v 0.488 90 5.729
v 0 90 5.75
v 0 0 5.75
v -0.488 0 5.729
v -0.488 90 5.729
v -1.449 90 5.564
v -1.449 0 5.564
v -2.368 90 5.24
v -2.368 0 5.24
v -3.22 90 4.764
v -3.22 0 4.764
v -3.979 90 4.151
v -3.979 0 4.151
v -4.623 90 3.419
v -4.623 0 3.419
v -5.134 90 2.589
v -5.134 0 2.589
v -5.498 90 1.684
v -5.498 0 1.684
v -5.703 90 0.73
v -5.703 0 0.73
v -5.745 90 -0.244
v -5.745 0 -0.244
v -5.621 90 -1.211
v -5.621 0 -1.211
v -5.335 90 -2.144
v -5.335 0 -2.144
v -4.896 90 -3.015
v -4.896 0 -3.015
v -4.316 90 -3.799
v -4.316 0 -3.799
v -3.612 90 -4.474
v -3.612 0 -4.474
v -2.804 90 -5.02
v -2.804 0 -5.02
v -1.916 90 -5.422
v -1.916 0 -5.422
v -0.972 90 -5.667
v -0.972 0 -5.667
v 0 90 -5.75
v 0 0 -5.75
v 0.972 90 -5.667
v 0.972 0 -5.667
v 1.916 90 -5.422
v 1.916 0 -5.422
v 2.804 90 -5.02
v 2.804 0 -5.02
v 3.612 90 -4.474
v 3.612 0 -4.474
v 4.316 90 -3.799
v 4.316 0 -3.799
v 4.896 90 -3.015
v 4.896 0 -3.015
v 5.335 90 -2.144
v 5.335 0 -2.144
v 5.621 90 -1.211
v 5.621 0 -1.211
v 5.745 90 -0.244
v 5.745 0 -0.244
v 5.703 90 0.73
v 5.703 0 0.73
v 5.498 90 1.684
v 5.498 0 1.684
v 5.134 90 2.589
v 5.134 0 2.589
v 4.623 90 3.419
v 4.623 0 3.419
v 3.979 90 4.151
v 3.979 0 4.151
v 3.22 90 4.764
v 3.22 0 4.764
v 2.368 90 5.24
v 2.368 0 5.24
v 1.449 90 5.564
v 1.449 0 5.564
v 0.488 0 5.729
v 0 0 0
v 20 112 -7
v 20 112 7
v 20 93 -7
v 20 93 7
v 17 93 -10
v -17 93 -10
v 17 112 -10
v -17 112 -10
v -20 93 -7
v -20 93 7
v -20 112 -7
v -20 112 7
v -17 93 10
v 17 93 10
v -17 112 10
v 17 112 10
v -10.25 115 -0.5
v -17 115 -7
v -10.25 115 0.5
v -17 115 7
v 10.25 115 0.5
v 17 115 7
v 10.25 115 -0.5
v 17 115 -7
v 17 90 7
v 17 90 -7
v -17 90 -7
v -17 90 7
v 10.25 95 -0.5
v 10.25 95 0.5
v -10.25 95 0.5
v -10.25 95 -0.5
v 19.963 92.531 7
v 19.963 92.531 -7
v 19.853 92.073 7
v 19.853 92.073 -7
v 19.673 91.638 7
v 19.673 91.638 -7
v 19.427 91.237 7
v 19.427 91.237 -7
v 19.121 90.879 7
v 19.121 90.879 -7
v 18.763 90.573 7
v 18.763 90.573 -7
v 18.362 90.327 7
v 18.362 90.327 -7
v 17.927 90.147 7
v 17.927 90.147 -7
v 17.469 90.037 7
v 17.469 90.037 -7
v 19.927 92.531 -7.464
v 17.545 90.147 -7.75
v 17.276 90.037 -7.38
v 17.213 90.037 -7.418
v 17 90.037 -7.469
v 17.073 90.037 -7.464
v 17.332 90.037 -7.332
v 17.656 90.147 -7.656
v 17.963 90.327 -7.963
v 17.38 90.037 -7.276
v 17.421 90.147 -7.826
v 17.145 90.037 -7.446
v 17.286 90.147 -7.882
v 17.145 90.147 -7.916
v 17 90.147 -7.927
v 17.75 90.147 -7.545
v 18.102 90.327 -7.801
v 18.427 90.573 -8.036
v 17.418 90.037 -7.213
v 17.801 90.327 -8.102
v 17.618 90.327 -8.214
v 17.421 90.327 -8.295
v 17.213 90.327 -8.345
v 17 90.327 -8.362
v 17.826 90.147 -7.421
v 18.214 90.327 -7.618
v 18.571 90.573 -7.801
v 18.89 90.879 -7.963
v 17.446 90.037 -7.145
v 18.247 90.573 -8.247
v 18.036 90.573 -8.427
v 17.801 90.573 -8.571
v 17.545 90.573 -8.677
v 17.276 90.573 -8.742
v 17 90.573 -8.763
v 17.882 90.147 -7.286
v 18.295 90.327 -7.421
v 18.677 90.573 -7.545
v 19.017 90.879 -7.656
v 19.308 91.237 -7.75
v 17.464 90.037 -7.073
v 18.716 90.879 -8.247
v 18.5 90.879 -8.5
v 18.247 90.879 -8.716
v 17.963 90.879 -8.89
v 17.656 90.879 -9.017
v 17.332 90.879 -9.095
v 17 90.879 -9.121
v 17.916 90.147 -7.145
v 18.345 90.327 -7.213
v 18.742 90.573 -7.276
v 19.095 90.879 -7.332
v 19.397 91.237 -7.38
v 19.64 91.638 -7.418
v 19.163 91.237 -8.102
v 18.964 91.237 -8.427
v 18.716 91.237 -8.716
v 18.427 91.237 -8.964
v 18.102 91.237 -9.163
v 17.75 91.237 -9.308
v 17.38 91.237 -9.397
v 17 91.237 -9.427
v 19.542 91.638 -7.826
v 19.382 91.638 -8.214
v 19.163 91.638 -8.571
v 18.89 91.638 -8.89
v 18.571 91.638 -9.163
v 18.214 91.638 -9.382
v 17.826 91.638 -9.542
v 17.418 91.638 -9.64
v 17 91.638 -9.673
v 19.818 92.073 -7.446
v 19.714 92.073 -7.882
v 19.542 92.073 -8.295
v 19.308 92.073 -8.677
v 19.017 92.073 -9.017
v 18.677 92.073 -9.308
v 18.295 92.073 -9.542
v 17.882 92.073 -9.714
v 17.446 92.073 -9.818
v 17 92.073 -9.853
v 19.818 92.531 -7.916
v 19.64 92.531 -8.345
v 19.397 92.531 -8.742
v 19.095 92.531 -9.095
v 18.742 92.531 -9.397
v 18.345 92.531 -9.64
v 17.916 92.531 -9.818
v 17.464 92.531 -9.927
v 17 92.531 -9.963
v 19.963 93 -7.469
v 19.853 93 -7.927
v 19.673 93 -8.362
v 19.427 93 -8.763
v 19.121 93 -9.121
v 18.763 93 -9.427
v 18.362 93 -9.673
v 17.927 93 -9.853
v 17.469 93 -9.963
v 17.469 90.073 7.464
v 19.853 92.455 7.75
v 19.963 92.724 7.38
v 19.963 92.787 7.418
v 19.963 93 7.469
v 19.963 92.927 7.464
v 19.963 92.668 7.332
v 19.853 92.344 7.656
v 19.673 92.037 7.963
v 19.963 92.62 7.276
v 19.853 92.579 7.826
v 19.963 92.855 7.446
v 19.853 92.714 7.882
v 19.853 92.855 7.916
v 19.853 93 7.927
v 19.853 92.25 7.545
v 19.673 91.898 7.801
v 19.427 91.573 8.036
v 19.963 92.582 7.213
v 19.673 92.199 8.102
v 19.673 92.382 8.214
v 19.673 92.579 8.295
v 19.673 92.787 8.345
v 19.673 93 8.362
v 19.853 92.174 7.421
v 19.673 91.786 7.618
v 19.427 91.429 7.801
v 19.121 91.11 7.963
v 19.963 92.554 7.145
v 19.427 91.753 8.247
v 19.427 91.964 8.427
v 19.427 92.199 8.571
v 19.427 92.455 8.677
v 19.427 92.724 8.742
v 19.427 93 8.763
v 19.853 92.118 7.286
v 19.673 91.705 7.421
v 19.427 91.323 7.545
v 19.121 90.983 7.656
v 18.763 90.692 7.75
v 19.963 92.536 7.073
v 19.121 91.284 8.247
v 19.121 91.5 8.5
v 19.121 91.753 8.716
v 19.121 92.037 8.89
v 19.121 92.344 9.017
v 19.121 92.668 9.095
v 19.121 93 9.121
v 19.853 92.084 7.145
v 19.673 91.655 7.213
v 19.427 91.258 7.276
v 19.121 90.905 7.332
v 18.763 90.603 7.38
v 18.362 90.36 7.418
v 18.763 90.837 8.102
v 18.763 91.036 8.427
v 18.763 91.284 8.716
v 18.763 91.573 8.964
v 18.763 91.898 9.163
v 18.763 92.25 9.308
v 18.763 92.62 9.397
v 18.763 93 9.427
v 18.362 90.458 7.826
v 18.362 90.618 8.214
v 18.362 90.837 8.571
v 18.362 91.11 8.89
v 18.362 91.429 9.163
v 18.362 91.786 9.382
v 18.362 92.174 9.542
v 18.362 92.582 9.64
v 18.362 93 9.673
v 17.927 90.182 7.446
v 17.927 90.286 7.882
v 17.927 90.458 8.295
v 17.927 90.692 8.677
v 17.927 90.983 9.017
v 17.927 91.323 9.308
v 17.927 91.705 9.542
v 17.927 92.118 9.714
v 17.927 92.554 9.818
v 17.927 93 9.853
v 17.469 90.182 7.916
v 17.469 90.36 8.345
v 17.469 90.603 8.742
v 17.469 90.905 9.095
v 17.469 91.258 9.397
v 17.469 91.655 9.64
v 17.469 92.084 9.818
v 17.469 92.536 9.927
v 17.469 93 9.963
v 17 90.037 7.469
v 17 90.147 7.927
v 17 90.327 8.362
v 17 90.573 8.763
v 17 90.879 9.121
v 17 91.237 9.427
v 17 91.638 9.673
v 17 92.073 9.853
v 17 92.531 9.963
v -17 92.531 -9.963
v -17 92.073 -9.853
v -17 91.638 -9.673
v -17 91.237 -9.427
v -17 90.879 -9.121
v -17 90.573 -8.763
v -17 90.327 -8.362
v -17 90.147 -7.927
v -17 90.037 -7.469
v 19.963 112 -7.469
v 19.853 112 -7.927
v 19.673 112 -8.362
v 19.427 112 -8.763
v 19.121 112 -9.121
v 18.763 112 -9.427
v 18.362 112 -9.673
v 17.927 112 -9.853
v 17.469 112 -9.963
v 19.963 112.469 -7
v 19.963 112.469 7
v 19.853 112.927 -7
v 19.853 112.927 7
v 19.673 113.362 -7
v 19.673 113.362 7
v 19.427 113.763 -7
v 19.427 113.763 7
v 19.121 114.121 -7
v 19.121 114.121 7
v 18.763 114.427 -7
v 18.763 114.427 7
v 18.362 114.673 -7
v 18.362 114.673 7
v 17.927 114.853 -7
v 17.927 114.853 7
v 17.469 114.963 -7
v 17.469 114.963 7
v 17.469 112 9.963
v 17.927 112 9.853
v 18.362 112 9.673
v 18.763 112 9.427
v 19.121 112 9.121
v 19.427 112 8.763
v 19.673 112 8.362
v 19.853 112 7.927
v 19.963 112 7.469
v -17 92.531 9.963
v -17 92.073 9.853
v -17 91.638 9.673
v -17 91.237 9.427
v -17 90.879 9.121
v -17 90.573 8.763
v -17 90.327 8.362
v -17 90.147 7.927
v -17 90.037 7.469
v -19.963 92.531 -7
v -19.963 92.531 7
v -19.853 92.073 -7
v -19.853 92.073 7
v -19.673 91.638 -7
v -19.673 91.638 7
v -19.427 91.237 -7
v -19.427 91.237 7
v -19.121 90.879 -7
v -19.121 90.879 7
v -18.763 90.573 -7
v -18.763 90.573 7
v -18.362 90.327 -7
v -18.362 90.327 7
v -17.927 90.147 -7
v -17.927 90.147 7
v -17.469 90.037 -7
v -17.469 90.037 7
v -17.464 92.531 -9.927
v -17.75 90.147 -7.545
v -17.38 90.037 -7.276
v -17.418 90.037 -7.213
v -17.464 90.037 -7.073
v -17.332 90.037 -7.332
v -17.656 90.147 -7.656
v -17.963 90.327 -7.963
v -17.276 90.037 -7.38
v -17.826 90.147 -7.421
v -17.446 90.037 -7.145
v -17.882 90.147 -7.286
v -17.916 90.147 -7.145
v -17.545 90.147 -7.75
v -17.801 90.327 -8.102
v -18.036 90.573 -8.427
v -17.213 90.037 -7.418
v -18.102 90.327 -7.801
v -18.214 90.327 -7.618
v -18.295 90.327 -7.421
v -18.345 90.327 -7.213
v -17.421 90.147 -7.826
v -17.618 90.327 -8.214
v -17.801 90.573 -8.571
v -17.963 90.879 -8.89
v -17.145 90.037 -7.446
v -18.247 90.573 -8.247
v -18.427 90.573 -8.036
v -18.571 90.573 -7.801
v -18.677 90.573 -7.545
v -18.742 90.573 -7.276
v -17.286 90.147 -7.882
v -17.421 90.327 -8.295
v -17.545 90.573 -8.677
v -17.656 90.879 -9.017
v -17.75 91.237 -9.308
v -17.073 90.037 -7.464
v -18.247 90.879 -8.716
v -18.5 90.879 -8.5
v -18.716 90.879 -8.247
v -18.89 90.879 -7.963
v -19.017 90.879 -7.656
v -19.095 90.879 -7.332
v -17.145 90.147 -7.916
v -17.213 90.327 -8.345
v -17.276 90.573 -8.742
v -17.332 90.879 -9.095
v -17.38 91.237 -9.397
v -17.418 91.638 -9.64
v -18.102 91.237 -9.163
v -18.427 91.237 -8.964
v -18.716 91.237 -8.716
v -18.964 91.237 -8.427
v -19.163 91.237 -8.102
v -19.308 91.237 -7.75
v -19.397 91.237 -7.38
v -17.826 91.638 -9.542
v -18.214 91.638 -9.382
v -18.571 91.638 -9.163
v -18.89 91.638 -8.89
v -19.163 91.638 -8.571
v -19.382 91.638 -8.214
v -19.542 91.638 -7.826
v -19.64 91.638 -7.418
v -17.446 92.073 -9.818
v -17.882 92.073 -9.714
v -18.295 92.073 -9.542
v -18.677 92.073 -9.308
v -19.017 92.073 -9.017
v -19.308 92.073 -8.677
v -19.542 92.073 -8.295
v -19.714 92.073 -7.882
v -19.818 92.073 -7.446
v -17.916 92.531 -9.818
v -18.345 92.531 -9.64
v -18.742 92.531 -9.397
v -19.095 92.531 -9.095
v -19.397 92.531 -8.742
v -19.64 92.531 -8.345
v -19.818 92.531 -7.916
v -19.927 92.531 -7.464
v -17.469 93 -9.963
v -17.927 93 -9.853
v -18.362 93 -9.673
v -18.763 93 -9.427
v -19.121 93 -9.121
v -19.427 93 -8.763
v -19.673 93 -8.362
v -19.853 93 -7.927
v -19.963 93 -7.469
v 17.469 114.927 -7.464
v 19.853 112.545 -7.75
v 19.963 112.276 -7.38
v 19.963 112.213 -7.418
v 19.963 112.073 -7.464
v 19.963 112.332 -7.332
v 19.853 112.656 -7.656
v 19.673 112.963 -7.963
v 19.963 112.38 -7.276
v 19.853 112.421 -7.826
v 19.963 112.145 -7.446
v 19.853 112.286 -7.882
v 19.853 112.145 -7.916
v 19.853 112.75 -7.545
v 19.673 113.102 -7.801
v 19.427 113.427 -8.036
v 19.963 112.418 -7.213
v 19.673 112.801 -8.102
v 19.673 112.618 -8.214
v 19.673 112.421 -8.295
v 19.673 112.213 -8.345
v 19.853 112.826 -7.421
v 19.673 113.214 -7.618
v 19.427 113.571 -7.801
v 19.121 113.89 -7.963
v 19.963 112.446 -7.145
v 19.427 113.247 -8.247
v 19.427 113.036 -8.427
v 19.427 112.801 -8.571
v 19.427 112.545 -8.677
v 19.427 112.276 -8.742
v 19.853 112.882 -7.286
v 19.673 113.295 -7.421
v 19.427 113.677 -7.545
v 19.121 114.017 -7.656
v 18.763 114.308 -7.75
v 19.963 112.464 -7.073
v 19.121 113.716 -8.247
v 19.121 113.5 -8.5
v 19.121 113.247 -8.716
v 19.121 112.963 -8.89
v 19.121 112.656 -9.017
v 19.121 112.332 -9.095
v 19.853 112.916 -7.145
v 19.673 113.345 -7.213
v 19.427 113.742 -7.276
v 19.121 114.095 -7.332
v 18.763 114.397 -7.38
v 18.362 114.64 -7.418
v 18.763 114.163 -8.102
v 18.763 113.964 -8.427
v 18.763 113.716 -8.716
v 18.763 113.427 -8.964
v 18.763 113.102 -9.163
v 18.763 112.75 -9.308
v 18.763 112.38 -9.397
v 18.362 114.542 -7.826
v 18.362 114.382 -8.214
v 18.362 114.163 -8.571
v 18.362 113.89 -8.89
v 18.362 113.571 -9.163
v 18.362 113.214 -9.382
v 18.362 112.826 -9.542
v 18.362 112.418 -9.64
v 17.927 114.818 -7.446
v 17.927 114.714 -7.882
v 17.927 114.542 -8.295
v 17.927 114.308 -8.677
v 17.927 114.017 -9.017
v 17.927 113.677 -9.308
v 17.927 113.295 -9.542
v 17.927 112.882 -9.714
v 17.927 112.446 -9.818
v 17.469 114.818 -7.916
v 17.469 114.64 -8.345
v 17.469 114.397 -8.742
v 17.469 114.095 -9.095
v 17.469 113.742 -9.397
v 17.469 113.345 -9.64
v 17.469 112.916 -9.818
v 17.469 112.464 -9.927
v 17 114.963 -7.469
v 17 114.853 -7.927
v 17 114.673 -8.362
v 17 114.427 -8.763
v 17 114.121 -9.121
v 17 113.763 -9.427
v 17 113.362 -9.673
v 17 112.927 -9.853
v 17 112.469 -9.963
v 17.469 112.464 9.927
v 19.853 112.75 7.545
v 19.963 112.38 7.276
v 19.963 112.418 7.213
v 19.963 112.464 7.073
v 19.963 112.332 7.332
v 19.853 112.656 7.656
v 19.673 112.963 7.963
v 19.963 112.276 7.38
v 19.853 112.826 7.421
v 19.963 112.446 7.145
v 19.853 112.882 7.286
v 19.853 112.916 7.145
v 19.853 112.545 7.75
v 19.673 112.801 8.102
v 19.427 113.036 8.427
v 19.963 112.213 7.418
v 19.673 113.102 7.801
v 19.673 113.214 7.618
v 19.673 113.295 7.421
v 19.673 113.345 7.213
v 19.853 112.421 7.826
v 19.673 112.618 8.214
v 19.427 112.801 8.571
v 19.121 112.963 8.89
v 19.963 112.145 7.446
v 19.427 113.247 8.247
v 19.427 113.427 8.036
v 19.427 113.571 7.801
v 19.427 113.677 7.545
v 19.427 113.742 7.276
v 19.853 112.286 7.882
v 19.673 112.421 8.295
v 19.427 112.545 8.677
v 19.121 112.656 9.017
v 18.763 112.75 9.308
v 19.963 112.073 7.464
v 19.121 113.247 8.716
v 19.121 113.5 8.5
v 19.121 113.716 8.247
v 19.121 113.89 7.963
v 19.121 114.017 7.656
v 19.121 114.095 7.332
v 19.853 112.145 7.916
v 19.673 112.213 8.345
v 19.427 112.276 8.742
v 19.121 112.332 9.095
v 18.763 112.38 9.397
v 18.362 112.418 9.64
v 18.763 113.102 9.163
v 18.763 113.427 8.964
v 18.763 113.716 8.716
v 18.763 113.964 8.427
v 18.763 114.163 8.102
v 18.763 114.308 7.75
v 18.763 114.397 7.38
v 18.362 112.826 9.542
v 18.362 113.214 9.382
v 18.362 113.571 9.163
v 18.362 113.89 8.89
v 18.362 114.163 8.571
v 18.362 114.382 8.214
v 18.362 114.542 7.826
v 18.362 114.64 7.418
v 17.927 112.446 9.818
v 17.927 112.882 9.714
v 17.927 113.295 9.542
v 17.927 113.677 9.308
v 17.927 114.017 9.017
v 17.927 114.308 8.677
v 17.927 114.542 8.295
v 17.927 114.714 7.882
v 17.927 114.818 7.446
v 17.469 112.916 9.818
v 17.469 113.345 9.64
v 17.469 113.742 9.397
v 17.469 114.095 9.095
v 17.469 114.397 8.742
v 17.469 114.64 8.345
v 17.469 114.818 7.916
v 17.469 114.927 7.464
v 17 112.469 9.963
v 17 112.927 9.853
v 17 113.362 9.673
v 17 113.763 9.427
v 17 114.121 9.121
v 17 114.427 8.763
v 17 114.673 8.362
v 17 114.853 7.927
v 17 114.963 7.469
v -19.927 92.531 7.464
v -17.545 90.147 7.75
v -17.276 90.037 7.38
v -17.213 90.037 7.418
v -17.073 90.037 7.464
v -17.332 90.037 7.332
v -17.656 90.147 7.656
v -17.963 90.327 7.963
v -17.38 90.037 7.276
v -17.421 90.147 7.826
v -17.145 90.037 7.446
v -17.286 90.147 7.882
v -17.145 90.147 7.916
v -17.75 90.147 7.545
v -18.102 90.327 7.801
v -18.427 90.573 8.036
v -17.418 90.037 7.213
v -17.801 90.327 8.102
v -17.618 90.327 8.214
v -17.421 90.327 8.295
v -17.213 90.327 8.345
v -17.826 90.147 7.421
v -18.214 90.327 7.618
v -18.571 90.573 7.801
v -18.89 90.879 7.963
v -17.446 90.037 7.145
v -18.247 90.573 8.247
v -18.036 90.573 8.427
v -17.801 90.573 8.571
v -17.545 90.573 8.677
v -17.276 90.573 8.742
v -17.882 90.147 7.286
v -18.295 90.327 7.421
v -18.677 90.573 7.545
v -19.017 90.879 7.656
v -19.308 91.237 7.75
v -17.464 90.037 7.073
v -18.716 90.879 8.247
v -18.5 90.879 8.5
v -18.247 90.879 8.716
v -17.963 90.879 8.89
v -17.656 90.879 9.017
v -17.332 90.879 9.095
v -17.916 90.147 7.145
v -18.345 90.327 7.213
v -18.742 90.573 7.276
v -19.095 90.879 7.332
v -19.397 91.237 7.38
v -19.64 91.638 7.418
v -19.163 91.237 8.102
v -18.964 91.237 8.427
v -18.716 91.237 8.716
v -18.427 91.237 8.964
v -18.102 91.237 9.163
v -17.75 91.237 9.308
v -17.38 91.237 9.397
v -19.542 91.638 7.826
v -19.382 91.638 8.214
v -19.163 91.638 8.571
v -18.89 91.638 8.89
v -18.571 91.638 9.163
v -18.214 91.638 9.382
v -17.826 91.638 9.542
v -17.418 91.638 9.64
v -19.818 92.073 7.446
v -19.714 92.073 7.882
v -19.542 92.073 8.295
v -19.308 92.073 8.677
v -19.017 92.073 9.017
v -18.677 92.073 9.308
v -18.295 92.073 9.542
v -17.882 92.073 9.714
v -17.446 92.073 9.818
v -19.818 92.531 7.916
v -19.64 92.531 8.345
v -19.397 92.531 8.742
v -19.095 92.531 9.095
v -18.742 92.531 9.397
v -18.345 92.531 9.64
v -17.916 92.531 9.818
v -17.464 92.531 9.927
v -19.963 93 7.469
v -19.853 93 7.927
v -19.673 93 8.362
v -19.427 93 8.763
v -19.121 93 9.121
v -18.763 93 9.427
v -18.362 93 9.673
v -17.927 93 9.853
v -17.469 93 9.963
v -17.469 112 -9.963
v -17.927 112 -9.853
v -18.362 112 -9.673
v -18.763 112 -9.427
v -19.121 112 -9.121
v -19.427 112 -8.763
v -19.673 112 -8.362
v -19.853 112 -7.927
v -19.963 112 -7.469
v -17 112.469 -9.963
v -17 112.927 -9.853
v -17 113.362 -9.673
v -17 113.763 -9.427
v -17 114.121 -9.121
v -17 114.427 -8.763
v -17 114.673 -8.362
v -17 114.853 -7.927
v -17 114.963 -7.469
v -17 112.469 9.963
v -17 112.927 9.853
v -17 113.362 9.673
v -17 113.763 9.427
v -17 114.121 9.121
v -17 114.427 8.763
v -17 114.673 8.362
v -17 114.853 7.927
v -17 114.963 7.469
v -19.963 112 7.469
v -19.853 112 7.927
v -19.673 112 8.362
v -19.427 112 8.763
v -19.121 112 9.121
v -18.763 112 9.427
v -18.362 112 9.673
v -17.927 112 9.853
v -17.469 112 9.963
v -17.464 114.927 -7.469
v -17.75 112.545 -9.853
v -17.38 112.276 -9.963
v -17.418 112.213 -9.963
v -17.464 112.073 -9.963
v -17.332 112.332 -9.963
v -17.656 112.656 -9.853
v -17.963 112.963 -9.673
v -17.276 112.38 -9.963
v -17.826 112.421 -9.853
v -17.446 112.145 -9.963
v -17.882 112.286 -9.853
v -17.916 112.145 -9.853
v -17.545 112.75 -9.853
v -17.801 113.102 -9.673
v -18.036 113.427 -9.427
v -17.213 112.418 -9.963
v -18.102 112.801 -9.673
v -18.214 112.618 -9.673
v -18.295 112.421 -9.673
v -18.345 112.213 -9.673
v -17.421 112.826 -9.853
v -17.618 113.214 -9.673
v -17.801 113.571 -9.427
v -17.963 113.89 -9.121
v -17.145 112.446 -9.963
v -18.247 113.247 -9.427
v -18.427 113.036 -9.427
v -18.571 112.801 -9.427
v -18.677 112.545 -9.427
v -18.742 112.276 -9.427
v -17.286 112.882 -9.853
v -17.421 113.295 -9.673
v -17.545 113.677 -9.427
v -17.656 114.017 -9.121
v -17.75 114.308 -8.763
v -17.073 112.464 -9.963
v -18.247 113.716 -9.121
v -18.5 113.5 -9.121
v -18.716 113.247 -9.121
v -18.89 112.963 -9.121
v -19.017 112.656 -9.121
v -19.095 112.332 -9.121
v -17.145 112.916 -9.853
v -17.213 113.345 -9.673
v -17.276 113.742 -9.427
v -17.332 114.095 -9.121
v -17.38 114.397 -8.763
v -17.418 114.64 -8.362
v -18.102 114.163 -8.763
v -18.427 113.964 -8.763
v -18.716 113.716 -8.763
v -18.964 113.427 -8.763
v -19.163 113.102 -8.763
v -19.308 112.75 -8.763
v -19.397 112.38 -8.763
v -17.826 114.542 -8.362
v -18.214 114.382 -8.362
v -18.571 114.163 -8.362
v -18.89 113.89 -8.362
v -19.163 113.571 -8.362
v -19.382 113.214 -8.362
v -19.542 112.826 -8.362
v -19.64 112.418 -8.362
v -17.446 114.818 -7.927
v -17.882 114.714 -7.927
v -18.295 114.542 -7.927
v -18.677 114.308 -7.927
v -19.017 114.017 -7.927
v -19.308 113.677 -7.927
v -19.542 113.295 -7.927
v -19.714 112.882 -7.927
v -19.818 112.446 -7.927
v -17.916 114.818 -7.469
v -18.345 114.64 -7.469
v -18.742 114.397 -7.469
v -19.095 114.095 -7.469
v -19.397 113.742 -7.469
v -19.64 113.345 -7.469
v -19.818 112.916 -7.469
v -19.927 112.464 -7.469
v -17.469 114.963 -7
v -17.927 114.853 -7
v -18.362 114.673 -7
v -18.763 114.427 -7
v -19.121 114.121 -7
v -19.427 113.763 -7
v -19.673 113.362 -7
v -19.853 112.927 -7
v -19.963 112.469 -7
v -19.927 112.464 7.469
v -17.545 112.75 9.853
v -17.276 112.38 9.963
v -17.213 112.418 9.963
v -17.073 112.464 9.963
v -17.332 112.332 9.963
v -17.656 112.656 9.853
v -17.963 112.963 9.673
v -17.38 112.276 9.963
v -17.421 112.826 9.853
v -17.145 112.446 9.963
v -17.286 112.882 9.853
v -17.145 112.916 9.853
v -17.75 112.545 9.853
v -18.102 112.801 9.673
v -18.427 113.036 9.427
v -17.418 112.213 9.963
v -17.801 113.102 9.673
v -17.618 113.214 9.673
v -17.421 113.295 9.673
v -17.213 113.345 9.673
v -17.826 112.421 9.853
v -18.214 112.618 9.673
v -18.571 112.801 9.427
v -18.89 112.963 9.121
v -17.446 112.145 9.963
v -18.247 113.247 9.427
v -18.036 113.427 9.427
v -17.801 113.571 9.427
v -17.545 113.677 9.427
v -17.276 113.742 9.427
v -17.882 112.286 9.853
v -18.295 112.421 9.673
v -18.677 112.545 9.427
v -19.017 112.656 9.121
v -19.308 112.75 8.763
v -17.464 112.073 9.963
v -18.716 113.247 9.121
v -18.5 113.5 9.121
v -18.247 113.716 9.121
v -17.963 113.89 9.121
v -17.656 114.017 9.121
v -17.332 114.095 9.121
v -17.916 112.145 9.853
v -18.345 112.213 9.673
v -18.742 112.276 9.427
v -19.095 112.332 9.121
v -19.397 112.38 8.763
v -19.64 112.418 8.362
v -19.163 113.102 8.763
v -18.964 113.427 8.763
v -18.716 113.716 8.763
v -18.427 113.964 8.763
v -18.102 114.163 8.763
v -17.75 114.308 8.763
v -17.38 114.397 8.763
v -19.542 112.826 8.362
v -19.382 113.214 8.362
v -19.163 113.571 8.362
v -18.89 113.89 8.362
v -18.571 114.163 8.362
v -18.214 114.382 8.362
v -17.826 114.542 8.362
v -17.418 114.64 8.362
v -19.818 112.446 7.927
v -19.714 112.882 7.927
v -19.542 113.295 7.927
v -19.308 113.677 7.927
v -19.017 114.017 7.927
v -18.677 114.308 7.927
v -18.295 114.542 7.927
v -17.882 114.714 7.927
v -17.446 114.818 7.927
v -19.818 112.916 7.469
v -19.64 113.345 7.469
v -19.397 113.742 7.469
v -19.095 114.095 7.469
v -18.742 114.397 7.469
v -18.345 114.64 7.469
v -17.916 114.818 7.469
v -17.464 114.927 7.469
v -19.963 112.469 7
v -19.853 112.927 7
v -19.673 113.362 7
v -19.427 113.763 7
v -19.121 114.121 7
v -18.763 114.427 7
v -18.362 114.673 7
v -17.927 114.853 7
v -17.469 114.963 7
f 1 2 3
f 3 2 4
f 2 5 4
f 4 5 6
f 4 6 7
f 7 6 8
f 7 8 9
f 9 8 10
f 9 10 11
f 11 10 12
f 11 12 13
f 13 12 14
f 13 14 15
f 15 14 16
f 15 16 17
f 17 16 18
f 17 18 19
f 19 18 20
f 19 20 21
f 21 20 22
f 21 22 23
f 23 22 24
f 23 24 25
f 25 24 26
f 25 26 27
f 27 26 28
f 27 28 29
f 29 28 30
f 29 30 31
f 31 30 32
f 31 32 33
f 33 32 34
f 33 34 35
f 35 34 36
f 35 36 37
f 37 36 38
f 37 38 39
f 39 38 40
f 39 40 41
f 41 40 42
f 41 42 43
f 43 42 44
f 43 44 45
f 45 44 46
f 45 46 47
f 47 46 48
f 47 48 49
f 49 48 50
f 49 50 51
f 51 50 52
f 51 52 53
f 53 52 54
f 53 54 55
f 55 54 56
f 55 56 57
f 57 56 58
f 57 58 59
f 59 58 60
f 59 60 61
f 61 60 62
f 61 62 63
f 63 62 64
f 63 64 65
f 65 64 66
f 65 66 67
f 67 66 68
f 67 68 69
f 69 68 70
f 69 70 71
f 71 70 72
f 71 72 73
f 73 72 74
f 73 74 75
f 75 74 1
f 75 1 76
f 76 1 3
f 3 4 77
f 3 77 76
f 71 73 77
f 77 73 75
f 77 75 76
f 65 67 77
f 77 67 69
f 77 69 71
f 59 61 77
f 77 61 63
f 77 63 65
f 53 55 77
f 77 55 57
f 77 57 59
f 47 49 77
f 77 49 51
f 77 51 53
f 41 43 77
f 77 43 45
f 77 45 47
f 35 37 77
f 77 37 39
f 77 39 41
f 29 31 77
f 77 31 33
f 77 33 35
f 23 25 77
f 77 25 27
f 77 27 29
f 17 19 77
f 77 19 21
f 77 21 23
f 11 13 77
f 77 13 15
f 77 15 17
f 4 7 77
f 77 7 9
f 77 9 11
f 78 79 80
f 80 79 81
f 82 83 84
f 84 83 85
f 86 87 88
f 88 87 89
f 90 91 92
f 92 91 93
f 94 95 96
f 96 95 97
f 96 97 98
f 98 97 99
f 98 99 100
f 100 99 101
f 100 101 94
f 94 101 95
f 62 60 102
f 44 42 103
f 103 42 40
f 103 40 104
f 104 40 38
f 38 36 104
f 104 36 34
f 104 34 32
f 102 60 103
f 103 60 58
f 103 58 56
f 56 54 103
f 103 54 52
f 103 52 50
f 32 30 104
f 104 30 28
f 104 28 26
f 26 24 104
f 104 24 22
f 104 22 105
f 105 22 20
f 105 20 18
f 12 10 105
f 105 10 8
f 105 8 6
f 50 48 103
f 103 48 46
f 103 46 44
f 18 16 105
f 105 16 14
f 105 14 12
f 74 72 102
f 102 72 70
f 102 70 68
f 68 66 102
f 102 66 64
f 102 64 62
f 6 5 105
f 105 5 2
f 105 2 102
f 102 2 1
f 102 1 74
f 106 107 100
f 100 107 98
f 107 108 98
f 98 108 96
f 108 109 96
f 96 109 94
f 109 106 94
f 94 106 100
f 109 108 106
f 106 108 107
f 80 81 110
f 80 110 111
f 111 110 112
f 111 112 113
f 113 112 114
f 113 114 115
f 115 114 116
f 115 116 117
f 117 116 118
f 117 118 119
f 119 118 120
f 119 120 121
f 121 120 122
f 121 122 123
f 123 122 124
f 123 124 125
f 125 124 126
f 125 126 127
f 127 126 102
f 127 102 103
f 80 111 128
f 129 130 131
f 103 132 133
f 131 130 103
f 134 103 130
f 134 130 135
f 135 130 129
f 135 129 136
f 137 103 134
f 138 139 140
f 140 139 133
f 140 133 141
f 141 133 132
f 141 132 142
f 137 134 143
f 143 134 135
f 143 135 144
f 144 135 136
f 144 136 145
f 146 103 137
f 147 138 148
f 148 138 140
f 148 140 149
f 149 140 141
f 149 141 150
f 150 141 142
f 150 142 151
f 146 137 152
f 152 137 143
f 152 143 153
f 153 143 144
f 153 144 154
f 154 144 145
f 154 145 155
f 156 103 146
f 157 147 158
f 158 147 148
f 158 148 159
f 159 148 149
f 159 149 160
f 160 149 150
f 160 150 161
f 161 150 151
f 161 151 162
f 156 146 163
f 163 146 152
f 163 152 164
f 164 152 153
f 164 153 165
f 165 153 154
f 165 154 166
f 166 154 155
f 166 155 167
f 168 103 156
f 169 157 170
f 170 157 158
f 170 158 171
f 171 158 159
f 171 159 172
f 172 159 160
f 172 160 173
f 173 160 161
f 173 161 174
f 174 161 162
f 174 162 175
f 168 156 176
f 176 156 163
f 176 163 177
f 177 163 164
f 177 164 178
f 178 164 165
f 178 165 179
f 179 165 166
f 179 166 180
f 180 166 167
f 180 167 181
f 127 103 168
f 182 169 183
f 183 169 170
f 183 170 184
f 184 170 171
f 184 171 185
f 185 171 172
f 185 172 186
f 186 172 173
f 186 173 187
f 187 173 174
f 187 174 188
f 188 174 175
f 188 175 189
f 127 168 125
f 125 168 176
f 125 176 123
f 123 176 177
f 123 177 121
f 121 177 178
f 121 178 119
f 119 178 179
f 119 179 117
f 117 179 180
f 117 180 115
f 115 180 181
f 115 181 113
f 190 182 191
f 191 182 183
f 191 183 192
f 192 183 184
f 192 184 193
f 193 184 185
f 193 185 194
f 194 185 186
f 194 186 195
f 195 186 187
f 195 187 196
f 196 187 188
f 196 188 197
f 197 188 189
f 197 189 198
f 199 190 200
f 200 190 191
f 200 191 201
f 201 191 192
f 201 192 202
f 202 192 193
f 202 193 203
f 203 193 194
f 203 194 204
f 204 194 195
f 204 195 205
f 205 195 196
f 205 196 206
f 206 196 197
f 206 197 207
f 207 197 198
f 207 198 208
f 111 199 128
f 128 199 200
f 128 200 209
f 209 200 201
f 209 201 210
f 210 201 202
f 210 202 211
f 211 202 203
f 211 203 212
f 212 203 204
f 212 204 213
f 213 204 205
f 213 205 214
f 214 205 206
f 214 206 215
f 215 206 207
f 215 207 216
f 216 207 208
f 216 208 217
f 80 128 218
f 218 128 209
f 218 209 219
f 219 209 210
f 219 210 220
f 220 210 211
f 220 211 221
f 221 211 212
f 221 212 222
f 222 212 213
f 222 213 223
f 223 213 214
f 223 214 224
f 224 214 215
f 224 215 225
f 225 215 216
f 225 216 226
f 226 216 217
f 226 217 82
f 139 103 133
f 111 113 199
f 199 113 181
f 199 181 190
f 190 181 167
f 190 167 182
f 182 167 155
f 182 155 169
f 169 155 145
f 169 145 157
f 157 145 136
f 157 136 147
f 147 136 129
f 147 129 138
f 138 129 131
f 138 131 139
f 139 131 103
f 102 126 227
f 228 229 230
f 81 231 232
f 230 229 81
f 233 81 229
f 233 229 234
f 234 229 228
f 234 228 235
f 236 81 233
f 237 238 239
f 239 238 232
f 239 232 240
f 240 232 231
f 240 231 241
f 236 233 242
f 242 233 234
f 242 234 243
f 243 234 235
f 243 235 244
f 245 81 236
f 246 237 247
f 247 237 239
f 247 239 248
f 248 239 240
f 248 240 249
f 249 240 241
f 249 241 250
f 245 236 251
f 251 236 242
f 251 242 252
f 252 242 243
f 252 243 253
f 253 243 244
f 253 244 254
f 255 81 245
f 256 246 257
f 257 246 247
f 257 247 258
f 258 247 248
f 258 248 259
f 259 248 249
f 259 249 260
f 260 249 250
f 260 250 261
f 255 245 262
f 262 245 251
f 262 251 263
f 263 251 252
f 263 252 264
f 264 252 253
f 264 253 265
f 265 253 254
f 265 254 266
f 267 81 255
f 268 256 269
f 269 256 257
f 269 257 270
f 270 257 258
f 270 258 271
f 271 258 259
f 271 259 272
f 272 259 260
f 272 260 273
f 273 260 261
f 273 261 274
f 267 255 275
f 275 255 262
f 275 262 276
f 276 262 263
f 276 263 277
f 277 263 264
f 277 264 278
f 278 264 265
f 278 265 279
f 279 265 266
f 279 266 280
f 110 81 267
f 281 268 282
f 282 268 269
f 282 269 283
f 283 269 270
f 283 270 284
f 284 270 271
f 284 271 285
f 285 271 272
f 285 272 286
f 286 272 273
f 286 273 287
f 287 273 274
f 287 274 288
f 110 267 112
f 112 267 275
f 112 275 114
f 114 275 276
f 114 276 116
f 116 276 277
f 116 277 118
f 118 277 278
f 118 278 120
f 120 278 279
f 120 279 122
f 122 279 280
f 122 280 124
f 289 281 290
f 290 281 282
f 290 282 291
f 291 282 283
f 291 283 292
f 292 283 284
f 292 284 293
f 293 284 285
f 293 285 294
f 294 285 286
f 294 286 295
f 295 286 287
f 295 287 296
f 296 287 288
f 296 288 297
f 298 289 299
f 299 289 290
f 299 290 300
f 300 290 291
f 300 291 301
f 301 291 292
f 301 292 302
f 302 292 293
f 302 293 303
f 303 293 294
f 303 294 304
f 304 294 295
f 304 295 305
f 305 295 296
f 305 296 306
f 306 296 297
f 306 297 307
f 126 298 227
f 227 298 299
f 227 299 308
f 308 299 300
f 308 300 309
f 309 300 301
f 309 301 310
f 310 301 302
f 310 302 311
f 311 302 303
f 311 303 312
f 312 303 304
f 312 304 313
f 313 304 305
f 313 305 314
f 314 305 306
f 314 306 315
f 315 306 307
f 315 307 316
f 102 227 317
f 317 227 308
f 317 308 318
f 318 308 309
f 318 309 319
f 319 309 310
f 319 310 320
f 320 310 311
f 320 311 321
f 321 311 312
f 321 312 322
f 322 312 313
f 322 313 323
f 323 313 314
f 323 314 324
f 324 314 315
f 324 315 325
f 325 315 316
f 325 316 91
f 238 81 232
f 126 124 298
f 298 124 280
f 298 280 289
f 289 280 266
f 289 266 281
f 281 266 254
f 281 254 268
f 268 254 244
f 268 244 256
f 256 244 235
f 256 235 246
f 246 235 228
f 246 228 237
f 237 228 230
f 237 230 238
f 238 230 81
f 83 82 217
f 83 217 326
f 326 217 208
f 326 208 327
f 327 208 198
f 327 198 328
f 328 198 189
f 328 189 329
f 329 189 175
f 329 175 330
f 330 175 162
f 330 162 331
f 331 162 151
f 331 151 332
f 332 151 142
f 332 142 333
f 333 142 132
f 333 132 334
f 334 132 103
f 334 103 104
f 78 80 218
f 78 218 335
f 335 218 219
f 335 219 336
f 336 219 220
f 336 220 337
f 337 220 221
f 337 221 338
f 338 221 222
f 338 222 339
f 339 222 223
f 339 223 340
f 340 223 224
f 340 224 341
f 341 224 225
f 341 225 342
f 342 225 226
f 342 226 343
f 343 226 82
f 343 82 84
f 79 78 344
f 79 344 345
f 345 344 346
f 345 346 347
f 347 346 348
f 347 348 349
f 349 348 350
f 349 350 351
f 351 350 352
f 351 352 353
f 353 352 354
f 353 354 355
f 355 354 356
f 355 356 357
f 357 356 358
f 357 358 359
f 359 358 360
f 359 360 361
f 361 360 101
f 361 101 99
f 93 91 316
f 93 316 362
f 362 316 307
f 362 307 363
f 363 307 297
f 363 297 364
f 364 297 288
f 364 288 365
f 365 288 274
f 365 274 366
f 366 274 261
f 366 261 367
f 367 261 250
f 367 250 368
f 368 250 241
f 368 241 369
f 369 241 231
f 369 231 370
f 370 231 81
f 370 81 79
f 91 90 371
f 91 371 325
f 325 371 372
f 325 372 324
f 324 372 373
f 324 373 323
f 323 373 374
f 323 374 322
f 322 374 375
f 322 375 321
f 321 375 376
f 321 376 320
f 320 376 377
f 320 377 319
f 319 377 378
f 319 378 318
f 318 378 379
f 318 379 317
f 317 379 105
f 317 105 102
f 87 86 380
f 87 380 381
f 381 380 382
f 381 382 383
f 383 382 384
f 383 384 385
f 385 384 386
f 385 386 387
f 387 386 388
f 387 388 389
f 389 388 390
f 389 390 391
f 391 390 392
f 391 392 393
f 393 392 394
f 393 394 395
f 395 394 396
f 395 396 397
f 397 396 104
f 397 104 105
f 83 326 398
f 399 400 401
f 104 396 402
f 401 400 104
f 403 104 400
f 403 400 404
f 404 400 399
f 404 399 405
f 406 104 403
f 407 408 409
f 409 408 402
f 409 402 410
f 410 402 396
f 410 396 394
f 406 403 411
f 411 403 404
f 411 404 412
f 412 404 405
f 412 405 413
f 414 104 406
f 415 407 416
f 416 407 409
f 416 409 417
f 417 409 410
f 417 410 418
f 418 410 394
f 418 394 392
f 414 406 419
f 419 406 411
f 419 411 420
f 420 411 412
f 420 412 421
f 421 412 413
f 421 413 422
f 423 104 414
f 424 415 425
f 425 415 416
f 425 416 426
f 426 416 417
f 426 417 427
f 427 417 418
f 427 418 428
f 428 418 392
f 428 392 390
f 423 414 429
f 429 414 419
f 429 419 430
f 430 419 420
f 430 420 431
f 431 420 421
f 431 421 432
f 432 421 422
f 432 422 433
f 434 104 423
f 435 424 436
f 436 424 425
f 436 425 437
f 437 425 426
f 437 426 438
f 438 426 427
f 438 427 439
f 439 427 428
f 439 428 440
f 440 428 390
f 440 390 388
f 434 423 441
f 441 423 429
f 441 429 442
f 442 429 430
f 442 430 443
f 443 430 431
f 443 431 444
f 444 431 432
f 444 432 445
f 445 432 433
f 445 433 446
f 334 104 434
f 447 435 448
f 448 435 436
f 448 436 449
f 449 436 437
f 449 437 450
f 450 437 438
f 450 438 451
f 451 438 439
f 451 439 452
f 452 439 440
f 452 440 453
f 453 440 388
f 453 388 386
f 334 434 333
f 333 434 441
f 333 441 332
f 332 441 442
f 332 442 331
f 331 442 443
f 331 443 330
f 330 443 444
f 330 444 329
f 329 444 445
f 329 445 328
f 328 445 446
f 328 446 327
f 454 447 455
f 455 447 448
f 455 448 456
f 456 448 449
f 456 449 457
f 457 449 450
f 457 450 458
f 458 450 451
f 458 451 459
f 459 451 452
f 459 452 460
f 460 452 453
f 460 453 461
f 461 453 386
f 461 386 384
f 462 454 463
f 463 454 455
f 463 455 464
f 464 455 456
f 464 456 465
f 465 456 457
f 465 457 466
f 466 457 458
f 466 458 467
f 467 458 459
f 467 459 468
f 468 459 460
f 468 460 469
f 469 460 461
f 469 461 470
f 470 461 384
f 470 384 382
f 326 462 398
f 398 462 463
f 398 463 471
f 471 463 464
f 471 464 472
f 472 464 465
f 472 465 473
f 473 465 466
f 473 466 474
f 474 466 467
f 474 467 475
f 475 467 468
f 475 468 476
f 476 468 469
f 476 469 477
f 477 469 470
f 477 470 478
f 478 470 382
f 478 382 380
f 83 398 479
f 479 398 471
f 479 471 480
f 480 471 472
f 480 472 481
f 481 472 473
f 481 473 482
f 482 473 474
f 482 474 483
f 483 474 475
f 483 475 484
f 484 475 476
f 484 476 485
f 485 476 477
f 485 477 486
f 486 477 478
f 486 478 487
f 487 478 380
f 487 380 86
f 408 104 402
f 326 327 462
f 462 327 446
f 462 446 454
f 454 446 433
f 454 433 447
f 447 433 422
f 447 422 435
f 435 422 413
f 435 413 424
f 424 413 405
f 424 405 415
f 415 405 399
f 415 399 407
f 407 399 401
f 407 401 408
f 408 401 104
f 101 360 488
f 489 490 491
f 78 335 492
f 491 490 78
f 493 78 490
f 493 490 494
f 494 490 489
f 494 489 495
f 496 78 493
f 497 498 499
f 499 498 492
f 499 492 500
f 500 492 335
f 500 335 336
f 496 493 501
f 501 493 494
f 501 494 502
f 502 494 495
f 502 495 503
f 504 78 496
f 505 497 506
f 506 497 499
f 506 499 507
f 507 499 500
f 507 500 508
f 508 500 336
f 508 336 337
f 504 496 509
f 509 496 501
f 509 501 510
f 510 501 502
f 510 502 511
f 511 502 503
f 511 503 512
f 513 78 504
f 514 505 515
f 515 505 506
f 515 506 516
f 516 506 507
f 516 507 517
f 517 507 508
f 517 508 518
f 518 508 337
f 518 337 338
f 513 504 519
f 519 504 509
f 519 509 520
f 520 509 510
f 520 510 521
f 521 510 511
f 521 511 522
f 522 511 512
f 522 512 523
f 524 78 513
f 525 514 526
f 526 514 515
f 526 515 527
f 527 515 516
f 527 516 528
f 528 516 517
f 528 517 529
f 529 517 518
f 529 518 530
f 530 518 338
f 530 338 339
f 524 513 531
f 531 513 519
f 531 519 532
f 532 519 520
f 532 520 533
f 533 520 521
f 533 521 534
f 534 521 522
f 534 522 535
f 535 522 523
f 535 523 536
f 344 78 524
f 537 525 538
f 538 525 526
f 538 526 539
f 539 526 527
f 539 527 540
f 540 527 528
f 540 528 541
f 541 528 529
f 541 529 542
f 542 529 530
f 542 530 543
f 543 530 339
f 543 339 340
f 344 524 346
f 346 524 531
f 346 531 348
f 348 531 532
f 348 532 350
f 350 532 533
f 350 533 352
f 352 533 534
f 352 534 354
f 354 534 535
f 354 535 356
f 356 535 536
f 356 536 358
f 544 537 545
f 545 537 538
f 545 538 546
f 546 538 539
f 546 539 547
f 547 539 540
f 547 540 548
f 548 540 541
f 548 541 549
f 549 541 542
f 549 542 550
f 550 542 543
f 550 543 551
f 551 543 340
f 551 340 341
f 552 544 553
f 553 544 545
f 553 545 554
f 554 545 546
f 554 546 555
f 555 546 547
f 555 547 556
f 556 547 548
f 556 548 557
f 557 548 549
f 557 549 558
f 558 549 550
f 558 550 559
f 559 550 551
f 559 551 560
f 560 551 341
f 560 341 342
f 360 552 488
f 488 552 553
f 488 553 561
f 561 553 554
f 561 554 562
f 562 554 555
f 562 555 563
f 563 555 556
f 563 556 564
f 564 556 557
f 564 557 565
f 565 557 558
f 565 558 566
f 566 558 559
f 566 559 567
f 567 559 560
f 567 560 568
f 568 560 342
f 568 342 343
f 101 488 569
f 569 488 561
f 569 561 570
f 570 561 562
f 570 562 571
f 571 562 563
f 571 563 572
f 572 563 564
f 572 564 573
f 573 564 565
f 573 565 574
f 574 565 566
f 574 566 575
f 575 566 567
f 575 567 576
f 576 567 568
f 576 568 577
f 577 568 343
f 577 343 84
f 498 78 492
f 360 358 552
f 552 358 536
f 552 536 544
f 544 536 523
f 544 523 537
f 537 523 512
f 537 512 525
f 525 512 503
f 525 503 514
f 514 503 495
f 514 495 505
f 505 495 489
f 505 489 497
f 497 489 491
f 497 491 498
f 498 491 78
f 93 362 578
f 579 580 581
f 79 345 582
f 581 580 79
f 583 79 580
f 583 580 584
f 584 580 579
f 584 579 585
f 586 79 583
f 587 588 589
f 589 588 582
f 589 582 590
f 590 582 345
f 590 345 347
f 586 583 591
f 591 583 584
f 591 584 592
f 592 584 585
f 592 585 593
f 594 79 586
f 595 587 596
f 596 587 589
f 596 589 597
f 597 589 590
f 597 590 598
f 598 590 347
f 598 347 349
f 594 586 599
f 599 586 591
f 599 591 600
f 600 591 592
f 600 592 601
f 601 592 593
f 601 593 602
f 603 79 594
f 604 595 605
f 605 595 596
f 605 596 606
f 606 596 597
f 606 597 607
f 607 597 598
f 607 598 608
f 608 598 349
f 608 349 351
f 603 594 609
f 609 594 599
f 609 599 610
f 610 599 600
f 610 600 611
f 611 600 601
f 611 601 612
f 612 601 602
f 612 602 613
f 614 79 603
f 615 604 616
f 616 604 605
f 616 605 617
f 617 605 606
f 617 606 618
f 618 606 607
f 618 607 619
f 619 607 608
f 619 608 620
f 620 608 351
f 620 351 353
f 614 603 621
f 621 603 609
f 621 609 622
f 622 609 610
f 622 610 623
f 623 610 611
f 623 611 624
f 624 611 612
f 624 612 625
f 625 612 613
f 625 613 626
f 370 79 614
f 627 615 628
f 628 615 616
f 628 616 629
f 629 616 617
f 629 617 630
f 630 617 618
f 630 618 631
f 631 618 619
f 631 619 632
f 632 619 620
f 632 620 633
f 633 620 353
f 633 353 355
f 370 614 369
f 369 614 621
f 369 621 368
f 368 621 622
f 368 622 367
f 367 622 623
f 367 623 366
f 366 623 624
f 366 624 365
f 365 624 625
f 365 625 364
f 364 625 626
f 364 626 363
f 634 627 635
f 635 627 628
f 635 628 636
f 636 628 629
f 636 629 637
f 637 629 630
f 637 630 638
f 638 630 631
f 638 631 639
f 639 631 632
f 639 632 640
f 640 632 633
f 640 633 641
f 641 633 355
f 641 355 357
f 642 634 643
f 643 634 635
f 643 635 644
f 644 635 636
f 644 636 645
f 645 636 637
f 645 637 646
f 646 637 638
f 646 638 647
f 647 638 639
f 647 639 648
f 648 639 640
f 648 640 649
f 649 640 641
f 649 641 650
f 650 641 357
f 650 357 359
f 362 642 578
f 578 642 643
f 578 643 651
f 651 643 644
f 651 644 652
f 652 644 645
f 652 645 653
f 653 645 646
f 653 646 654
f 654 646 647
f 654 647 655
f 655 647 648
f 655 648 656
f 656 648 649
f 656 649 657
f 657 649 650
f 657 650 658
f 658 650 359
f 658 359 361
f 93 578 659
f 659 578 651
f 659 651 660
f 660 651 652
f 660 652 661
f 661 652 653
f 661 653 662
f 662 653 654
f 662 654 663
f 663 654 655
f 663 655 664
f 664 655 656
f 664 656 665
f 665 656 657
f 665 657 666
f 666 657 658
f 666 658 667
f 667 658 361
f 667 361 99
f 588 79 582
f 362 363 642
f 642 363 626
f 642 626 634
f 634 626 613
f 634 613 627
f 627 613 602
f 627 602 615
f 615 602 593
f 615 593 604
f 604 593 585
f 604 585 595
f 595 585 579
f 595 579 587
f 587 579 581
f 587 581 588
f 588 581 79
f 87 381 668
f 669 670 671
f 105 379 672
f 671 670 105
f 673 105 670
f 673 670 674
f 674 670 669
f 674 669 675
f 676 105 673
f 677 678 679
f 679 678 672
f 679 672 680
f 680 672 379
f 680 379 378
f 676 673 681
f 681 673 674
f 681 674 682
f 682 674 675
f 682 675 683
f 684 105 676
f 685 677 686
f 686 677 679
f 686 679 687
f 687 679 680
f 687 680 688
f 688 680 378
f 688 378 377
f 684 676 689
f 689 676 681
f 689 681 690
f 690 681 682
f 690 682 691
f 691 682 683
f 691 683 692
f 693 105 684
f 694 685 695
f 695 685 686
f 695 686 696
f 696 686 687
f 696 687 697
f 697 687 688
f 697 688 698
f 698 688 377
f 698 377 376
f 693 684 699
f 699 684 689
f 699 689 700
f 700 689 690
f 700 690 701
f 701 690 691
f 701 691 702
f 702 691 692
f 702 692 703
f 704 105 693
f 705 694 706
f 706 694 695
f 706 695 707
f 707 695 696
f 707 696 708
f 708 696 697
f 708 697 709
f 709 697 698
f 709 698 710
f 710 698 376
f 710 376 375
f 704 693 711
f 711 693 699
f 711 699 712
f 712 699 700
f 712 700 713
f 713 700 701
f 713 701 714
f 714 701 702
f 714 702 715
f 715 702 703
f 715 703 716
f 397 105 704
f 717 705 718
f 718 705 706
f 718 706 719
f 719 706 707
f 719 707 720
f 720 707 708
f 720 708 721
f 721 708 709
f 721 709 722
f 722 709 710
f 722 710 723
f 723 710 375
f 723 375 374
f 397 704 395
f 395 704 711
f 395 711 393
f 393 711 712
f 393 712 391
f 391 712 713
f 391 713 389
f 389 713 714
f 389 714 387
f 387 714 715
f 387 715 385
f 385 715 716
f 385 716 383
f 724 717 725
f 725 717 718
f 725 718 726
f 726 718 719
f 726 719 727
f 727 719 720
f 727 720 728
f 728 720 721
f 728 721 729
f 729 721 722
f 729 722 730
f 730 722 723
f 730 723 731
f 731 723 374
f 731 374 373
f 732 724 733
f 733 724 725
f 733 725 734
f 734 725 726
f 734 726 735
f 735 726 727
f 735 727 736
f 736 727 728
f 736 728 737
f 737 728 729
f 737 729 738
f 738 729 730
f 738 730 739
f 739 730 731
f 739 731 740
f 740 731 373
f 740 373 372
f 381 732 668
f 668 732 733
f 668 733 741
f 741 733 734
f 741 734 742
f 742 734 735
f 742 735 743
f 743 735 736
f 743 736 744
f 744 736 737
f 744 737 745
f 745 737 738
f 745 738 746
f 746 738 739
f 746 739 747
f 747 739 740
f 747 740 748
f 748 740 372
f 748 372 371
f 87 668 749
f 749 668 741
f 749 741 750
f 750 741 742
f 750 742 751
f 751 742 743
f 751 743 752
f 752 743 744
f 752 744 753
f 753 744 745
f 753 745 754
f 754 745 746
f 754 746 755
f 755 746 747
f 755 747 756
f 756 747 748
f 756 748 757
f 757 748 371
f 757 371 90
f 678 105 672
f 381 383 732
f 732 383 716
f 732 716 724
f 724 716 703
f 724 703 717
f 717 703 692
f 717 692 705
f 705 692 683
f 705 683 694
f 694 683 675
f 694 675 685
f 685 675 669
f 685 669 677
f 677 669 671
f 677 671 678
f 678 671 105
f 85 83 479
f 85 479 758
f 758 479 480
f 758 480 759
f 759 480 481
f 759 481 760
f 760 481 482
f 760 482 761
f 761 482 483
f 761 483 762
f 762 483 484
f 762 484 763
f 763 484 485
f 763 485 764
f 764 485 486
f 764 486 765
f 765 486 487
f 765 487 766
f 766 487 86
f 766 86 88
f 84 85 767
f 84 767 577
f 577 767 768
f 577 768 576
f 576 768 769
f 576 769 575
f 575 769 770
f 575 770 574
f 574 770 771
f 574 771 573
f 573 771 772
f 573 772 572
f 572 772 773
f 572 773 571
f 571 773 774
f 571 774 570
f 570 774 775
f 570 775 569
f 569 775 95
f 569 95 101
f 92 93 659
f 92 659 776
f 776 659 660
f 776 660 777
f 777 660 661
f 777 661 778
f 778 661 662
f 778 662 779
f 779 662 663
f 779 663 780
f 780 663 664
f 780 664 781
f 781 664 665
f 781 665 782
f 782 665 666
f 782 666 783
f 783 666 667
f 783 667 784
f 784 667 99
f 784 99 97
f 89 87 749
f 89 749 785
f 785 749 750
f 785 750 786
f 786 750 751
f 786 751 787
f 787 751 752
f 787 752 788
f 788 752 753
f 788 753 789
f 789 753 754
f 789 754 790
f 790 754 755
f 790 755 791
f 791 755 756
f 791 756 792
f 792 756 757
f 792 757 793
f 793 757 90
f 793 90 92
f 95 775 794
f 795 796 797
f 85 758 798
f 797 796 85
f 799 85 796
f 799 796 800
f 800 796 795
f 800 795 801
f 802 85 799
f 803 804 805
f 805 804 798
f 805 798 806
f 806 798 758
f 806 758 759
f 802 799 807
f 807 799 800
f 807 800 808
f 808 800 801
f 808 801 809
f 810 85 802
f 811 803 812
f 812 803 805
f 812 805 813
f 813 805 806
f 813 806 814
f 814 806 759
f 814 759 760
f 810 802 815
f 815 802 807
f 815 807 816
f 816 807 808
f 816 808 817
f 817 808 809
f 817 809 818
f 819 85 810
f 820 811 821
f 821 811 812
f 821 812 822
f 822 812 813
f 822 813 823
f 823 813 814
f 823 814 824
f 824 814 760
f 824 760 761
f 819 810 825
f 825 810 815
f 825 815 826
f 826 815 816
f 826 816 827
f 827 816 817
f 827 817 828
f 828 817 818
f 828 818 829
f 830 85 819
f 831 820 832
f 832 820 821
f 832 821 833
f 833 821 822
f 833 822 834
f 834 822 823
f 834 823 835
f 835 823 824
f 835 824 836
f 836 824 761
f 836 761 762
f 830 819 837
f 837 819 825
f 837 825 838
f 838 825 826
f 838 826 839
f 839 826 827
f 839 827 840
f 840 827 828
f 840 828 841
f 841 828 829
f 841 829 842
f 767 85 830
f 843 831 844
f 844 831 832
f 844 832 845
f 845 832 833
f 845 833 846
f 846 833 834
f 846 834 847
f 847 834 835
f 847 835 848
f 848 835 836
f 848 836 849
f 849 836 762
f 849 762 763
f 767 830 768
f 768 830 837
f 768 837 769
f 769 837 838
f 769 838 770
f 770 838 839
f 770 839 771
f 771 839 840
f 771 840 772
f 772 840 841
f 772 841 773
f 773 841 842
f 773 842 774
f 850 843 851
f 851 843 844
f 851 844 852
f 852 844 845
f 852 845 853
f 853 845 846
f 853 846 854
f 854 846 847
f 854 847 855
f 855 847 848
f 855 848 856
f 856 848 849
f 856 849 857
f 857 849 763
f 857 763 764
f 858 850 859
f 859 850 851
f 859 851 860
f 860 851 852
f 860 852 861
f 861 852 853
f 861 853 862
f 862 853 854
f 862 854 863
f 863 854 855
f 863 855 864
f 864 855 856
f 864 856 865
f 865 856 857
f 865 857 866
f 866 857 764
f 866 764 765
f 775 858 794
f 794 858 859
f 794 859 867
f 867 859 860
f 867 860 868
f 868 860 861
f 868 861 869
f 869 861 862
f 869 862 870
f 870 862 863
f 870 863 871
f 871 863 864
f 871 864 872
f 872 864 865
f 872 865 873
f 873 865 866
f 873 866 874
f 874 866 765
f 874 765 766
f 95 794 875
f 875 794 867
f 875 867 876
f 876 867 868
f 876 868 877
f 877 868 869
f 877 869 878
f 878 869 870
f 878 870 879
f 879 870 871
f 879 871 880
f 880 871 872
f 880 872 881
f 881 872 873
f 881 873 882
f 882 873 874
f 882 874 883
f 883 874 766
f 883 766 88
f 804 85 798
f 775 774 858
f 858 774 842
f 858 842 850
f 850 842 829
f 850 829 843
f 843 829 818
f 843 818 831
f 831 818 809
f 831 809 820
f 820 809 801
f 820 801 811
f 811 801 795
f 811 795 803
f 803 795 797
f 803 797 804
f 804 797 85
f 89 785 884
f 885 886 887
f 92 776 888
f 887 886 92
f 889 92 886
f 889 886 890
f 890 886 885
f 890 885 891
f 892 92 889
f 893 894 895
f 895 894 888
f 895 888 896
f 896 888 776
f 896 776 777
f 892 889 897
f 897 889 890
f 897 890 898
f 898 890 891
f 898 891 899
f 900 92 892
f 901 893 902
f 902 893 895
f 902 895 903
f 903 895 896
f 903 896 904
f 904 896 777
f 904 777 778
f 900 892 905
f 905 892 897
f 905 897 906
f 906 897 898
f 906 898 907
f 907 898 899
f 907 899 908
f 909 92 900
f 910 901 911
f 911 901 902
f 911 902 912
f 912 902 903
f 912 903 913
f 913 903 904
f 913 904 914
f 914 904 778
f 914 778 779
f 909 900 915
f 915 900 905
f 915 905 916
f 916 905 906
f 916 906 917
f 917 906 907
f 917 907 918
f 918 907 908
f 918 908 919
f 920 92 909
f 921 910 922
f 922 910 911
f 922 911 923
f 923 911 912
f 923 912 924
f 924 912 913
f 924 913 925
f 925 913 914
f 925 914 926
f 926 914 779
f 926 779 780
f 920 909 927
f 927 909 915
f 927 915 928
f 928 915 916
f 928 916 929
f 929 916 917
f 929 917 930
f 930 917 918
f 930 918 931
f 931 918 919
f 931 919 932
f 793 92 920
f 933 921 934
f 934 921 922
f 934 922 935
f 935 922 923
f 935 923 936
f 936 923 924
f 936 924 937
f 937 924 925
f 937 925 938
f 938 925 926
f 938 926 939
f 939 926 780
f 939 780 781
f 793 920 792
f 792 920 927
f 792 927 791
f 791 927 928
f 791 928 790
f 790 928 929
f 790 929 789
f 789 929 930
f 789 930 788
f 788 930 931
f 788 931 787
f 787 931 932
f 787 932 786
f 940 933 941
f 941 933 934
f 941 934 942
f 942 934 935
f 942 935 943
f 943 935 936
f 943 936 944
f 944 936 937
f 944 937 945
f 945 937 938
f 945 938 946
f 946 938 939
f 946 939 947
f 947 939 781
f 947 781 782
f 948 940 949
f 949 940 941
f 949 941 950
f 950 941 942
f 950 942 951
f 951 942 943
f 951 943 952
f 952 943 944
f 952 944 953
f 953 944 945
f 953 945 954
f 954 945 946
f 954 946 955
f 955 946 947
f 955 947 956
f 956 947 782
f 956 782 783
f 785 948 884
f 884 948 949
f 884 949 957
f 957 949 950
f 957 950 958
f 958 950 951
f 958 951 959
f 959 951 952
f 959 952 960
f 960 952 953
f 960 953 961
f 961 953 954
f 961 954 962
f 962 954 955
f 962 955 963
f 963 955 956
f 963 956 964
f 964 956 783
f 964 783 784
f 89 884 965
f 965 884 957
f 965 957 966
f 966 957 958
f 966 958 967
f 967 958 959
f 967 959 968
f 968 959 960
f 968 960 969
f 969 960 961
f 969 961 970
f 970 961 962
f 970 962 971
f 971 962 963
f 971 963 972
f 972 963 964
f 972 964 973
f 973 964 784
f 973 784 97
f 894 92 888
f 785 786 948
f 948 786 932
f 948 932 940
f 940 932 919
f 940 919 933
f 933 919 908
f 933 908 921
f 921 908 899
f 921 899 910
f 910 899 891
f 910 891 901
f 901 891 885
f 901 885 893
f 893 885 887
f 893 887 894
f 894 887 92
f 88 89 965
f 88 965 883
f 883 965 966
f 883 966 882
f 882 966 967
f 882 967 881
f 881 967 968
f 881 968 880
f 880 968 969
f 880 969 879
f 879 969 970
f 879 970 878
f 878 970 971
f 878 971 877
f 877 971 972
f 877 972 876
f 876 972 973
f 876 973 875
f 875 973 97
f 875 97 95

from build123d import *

# Parameters (mm, degrees)
SKETCH_1_R          = 5.75
EXTRUDE_1_DEPTH     = 90
SKETCH_2_W          = 40
SKETCH_2_H          = 20
EXTRUDE_2_DEPTH     = 25
SKETCH_3_W          = 20.5
SKETCH_3_H          = 1
CUT_EXTRUDE_1_DEPTH = 20
FILLET_1_R          = 3


with BuildPart() as part:
    # 草图1 → 凸台-拉伸1 (new body)
    with BuildSketch(Plane(origin=(0, 0, 0), x_dir=(1, 0, 0), z_dir=(0, 1, 0))):
        with Locations(Location((0, 0, 0), (0, 0, 90))):
            Circle(SKETCH_1_R)
    extrude(amount=EXTRUDE_1_DEPTH)

    # 草图2 → 凸台-拉伸2 (add)
    with BuildSketch(Plane(origin=(0, 90, 0), x_dir=(1, 0, 0), z_dir=(0, 1, 0))):
        Rectangle(SKETCH_2_W, SKETCH_2_H)
    extrude(amount=EXTRUDE_2_DEPTH)

    # 草图3 → 切除-拉伸1 (cut)
    with BuildSketch(Plane(origin=(0, 115, 0), x_dir=(1, 0, 0), z_dir=(0, 1, 0))):
        Rectangle(SKETCH_3_W, SKETCH_3_H)
    extrude(amount=-CUT_EXTRUDE_1_DEPTH, mode=Mode.SUBTRACT)

    # 圆角1
    fillet_1_edges = [part.edges().sort_by_distance(p)[0] for p in [
        (20, 90, 0),
        (20, 102.5, 10),
        (0, 90, -10),
        (20, 102.5, -10),
        (-20, 90, 0),
        (-20, 102.5, -10),
        (0, 90, 10),
        (-20, 102.5, 10),
        (20, 115, 0),
        (0, 115, -10),
        (-20, 115, 0),
        (0, 115, 10),
    ]]
    fillet(fillet_1_edges, radius=FILLET_1_R)


solid = part.part
